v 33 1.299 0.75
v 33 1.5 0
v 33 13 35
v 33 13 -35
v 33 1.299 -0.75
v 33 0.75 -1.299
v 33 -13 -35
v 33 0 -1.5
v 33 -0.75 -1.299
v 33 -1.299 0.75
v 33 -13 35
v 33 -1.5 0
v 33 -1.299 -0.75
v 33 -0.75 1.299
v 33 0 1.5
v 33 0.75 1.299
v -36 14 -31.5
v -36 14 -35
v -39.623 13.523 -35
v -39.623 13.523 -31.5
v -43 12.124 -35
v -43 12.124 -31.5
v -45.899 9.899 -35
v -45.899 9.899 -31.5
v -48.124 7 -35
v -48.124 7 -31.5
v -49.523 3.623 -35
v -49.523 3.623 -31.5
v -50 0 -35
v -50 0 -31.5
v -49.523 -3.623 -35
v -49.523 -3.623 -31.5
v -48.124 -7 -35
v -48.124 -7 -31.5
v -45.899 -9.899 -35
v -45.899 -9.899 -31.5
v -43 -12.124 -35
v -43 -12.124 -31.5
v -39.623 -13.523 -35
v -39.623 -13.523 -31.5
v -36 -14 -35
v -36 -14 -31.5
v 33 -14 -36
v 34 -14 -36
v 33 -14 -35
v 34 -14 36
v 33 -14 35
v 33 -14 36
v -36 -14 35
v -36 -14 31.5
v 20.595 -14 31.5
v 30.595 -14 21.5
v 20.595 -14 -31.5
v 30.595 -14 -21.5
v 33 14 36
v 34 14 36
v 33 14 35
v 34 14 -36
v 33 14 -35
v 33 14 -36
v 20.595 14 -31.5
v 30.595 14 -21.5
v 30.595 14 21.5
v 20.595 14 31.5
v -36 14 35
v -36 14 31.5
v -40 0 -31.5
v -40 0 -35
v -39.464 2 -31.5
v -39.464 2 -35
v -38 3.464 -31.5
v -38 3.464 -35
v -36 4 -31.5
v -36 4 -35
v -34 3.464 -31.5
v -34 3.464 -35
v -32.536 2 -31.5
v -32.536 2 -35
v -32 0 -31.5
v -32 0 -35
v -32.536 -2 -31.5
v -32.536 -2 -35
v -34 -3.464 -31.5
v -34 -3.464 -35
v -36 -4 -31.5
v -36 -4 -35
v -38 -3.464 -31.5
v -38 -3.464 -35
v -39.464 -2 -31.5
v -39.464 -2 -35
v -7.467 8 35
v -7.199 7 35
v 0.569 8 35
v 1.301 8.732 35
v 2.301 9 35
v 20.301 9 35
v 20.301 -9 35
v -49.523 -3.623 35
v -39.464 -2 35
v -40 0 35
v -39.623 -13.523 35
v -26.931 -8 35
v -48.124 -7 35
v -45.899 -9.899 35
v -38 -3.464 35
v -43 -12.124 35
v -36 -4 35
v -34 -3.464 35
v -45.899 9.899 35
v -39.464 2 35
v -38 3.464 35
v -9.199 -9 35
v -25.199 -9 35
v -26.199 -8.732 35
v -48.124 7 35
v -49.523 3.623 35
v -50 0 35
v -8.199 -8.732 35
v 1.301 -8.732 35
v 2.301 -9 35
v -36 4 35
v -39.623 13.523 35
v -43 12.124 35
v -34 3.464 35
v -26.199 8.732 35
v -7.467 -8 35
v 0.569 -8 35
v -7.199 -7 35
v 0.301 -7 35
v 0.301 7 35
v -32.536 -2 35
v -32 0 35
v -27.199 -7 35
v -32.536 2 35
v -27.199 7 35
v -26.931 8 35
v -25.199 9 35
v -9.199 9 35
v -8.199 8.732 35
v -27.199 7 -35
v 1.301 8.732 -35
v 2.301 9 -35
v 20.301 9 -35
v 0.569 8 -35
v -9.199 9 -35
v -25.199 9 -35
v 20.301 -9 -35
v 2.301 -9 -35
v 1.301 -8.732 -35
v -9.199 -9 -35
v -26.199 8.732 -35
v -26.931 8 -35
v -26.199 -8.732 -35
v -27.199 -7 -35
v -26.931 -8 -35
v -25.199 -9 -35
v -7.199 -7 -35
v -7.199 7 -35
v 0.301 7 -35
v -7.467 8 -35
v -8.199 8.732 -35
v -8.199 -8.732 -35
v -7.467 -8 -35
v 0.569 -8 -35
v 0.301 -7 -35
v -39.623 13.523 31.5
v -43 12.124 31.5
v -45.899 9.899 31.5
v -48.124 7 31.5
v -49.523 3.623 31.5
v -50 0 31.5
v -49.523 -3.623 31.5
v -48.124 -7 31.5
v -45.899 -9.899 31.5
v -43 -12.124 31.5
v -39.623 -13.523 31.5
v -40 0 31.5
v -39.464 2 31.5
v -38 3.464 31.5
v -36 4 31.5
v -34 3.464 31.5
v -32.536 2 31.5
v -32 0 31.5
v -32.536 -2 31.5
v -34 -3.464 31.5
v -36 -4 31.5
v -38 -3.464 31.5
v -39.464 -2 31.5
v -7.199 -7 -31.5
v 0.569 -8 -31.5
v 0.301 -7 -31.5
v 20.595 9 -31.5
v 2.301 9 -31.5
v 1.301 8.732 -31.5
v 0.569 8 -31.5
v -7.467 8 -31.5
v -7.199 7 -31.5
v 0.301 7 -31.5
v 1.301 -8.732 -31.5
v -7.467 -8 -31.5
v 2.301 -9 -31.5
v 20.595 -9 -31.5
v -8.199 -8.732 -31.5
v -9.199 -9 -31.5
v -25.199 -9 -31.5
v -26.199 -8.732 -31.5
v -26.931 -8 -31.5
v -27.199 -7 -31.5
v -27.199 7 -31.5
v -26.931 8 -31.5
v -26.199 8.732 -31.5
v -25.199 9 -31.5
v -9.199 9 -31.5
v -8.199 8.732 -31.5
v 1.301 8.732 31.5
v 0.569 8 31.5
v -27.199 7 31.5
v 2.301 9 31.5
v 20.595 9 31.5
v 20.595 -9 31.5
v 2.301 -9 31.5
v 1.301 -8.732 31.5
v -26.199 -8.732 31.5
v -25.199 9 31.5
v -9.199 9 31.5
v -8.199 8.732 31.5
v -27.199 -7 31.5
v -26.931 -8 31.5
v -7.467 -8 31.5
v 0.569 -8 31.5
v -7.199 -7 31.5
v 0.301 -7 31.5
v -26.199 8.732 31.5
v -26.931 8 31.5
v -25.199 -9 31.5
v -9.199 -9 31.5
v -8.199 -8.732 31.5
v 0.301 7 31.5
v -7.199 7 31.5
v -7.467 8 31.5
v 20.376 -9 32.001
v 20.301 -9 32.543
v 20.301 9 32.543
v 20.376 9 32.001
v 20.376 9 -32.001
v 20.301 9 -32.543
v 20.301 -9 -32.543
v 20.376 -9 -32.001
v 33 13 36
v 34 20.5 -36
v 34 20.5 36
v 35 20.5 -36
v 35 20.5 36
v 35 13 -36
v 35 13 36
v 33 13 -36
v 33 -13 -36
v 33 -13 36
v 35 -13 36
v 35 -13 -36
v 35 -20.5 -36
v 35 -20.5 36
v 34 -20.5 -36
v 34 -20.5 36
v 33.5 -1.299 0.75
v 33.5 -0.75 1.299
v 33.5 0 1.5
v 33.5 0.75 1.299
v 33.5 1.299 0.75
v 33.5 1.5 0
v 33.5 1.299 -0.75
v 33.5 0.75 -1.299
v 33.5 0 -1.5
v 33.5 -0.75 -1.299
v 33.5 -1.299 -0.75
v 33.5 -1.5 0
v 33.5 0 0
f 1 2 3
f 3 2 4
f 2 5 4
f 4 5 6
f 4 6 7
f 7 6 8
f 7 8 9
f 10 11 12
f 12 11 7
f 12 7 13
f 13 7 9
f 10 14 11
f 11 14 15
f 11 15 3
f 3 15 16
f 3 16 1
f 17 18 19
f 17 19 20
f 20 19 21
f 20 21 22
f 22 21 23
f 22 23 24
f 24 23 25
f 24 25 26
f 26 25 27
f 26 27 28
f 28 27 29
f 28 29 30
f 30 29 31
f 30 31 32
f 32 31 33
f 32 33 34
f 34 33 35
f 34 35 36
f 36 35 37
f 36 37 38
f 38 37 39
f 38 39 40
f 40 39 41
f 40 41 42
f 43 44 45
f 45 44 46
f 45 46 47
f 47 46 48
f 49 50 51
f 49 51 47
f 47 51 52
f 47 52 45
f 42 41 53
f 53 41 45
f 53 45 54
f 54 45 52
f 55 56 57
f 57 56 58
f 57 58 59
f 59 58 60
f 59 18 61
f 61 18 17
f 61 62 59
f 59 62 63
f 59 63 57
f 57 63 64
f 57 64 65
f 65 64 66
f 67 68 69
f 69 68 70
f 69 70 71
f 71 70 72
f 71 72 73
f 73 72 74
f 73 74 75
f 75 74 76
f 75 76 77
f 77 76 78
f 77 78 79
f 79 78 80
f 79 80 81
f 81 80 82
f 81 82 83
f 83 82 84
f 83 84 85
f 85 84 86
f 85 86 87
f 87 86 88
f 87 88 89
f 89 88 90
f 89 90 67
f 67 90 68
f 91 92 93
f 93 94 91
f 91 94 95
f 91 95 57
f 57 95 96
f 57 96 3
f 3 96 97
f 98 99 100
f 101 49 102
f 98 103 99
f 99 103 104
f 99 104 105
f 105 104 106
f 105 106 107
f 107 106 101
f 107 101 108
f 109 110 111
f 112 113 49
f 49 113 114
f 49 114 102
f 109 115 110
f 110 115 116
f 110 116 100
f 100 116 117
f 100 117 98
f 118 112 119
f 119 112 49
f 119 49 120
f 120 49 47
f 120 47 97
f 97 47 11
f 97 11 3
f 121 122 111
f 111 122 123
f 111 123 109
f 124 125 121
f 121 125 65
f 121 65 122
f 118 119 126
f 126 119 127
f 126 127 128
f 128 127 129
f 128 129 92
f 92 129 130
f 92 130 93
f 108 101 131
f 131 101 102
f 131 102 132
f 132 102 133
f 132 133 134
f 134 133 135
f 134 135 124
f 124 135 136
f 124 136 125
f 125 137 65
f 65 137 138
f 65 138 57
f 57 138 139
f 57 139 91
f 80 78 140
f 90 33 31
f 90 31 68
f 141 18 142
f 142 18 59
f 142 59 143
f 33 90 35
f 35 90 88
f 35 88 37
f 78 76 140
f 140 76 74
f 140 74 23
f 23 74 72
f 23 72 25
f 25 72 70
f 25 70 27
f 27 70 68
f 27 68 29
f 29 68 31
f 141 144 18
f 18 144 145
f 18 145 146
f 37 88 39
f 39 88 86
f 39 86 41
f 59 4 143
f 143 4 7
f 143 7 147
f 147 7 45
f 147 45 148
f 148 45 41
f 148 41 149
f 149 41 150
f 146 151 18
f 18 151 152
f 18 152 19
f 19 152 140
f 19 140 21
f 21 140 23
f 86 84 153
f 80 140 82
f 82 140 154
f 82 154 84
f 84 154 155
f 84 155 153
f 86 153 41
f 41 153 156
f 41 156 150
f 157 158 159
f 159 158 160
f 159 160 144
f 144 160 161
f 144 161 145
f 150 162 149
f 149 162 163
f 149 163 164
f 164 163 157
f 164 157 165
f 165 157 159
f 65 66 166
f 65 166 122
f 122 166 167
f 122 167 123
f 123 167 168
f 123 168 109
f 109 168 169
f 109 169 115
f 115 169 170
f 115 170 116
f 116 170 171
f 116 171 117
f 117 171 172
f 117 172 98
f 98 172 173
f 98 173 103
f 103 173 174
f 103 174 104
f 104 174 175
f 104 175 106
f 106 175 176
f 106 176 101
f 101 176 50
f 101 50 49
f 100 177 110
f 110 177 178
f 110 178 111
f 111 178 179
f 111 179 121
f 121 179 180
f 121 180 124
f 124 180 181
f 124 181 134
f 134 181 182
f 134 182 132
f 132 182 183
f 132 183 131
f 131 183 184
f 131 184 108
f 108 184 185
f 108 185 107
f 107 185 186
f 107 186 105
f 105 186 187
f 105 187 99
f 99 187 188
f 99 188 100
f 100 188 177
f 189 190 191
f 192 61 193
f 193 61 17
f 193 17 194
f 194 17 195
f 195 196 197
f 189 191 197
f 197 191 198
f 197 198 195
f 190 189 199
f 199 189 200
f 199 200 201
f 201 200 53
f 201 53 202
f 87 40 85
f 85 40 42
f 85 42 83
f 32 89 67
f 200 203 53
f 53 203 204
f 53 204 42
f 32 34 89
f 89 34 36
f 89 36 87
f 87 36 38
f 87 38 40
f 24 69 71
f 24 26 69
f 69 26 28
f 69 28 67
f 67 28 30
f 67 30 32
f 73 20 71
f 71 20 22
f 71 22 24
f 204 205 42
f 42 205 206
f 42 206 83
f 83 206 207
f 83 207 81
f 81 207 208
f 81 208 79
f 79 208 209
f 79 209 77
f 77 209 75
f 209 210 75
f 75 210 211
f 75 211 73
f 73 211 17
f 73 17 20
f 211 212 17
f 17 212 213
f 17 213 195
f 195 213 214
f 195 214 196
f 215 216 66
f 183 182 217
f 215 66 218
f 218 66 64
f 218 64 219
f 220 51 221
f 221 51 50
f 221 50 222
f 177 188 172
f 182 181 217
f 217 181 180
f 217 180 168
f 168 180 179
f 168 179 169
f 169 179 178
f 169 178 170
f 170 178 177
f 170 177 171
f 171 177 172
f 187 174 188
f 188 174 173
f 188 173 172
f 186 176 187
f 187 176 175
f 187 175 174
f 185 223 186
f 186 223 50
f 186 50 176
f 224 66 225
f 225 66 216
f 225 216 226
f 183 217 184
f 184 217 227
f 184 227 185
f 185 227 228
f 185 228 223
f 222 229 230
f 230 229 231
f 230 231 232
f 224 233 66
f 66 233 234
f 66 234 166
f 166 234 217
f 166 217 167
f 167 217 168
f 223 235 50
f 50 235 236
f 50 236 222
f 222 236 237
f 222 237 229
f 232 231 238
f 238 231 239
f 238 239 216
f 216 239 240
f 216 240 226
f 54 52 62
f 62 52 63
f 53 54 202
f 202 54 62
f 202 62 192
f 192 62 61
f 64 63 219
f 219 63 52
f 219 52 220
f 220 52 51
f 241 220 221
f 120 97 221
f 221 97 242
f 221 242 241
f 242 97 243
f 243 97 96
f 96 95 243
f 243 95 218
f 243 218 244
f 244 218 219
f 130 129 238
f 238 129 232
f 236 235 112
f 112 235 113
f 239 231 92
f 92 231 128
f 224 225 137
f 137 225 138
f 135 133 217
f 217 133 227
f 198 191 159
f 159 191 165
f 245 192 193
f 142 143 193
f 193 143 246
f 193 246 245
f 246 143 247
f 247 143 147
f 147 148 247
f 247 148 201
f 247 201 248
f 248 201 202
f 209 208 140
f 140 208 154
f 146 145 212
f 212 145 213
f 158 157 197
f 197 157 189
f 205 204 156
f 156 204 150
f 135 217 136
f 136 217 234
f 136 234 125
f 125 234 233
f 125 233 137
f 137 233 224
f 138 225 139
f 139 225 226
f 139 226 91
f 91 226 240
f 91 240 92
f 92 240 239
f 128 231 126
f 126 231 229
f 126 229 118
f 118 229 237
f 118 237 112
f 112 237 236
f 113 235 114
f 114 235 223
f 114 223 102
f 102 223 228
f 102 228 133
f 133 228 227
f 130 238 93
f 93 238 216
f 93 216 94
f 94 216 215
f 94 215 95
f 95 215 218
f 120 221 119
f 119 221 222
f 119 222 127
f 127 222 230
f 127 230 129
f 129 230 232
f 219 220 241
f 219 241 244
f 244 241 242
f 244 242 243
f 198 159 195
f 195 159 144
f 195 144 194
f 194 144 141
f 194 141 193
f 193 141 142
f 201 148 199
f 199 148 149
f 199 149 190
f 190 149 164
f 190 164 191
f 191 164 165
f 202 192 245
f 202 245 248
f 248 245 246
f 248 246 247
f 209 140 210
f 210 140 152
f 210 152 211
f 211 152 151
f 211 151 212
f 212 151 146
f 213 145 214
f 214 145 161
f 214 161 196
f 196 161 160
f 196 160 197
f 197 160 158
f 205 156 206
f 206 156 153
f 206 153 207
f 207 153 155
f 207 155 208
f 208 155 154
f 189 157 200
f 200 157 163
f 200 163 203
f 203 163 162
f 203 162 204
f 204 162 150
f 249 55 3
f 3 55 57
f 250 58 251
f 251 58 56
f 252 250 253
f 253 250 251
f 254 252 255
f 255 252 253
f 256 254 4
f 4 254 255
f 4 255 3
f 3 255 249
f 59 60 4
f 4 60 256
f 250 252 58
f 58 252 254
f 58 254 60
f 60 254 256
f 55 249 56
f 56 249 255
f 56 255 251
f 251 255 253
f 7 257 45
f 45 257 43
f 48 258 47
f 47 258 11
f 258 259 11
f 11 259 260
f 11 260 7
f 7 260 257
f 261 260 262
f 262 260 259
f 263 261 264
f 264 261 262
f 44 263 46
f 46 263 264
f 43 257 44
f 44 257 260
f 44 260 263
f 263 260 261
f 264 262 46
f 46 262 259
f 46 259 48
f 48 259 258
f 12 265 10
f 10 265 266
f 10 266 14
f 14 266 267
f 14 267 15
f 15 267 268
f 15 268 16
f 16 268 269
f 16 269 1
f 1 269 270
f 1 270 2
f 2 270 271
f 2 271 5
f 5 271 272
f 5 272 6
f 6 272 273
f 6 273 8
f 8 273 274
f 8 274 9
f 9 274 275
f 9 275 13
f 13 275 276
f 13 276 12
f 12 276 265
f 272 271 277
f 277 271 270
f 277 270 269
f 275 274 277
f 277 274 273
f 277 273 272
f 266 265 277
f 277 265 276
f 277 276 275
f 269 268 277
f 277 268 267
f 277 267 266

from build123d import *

# Parameters (mm, degrees)
SKETCH1_R           = 4
BOSS_EXTRUDE1_DEPTH = 35
SKETCH3_W           = 44.253465858
SKETCH3_H           = 32.381458222
CUT_EXTRUDE1_DEPTH  = 27.5
SKETCH4_W           = 83.940233782
SKETCH4_H           = 63
CUT_EXTRUDE2_DEPTH  = 68.149087857
CHAMFER1_SIZE       = 10
SKETCH7_W           = 20
SKETCH7_H           = 18
CUT_EXTRUDE3_DEPTH  = 88.155034278
FILLET2_R           = 2
BOSS_EXTRUDE4_START = 1
BOSS_EXTRUDE4_DEPTH = 72
SKETCH11_R          = 1.5
BOSS_EXTRUDE5_DEPTH = 0.5


with BuildPart() as part:
    # Sketch1 → Boss-Extrude1 (new, symmetric)
    with BuildSketch(Plane.XY):
        with BuildLine():
            Line((-36, 14), (33, 14))
            Line((33, 14), (33, -14))
            Line((33, -14), (-36, -14))
            ThreePointArc((-36, -14), (-50, 0), (-36, 14))
        make_face()
        with Locations((-36, 0)):
            Circle(SKETCH1_R, mode=Mode.SUBTRACT)
    extrude(amount=BOSS_EXTRUDE1_DEPTH, both=True)

    # Sketch3 → Cut-Extrude1 (cut, symmetric)
    with BuildSketch(Plane.XY):
        with Locations((-36, 0)):
            Rectangle(SKETCH3_W, SKETCH3_H)
    extrude(amount=CUT_EXTRUDE1_DEPTH, both=True, mode=Mode.SUBTRACT)

    # Sketch4 → Cut-Extrude2 (cut, through all)
    with BuildSketch(Plane(origin=(0, 14, 0), x_dir=(1, 0, 0), z_dir=(0, 1, 0))):
        with Locations((-11.375607931, 0)):
            Rectangle(SKETCH4_W, SKETCH4_H)
    extrude(amount=-CUT_EXTRUDE2_DEPTH, mode=Mode.SUBTRACT)

    # Chamfer1
    chamfer1_edges = [part.edges().sort_by_distance(p)[0] for p in [
        (30.59450896, 0, 31.5),
        (30.59450896, 0, -31.5),
    ]]
    chamfer(chamfer1_edges, length=CHAMFER1_SIZE)

    # Sketch7 → Cut-Extrude3 (cut, through all)
    with BuildSketch(Plane.XY.offset(35)):
        with Locations((-17.198958596, 0)):
            Rectangle(SKETCH7_W, SKETCH7_H)
        with Locations((10.301041404, 0)):
            Rectangle(SKETCH7_W, SKETCH7_H)
    extrude(amount=-CUT_EXTRUDE3_DEPTH, mode=Mode.SUBTRACT)

    # Fillet2
    # the kernel refuses this fillet: 2 mm, written as the material it adds along each edge
    with BuildSketch(Plane(origin=(-27.198958596, -9, -31.5), x_dir=(0, 1, 0), z_dir=(0, 0, -1)), Plane(origin=(-7.198958596, 9, -31.5), x_dir=(0, -1, 0), z_dir=(0, 0, -1)), Plane(origin=(-7.198958596, 9, 35), x_dir=(0, -1, 0), z_dir=(0, 0, -1)), Plane(origin=(-7.198958596, -9, -31.5), x_dir=(-1, 0, 0), z_dir=(0, 0, -1)), Plane(origin=(0.301041404, -9, -31.5), x_dir=(0, 1, 0), z_dir=(0, 0, -1))) as fillet2_piece_1:
        with BuildLine():
            CenterArc((FILLET2_R, FILLET2_R), FILLET2_R, 180, 90)
            Line((0, FILLET2_R), (0, 0))
            Line((0, 0), (FILLET2_R, 0))
        make_face()
    extrude(amount=3.5)
    with BuildSketch(Plane(origin=(-27.198958596, -9, 35), x_dir=(1, 0, 0), z_dir=(0, 0, -1)), Plane(origin=(-27.198958596, 9, -31.5), x_dir=(0, -1, 0), z_dir=(0, 0, -1)), Plane(origin=(-27.198958596, 9, 35), x_dir=(0, -1, 0), z_dir=(0, 0, -1)), Plane(origin=(-7.198958596, -9, 35), x_dir=(0, 1, 0), z_dir=(0, 0, -1)), Plane(origin=(0.301041404, -9, 35), x_dir=(1, 0, 0), z_dir=(0, 0, -1)), Plane(origin=(0.301041404, 9, -31.5), x_dir=(0, -1, 0), z_dir=(0, 0, -1)), Plane(origin=(0.301041404, 9, 35), x_dir=(0, -1, 0), z_dir=(0, 0, -1))) as fillet2_piece_2:
        with BuildLine():
            CenterArc((FILLET2_R, -FILLET2_R), FILLET2_R, 90, 90)
            Line((0, -FILLET2_R), (0, 0))
            Line((0, 0), (FILLET2_R, 0))
        make_face()
    extrude(amount=3.5)
    # the kernel refuses this fillet: 2 mm, written as the material it takes off along each edge
    with BuildSketch(Plane(origin=(20.301041404, 9, -31.5), x_dir=(1, 0, 0), z_dir=(0, -1, 0)), Plane(origin=(20.301041404, -9, 31.5), x_dir=(1, 0, 0), z_dir=(0, 1, 0))) as fillet2_2_piece_1:
        with BuildLine():
            CenterArc((2, -1.042951109), FILLET2_R, 148.568719088, 31.431280912)
            Line((0, -1.042951109), (0, 0))
            Line((0, 0), (0.293467555, 0))
        make_face()
    extrude(amount=18, mode=Mode.SUBTRACT)

    # Sketch10 → Boss-Extrude4 (add)
    with BuildSketch(Plane.XY.offset(35).offset(BOSS_EXTRUDE4_START)):
        Polygon((33, 14), (34, 14), (34, 20.5), (35, 20.5), (35, 13), (33, 13), align=None)
        Polygon((33, -14), (33, -13), (35, -13), (35, -20.5), (34, -20.5), (34, -14), align=None)
    extrude(amount=-BOSS_EXTRUDE4_DEPTH)

    # Sketch11 → Boss-Extrude5 (add)
    with BuildSketch(Plane(origin=(33, 0, 0), x_dir=(0, 0, -1), z_dir=(1, 0, 0))):
        with Locations(Location((0, 0, 0), (0, 0, 270))):
            Circle(SKETCH11_R)
    extrude(amount=BOSS_EXTRUDE5_DEPTH)


solid = part.part
